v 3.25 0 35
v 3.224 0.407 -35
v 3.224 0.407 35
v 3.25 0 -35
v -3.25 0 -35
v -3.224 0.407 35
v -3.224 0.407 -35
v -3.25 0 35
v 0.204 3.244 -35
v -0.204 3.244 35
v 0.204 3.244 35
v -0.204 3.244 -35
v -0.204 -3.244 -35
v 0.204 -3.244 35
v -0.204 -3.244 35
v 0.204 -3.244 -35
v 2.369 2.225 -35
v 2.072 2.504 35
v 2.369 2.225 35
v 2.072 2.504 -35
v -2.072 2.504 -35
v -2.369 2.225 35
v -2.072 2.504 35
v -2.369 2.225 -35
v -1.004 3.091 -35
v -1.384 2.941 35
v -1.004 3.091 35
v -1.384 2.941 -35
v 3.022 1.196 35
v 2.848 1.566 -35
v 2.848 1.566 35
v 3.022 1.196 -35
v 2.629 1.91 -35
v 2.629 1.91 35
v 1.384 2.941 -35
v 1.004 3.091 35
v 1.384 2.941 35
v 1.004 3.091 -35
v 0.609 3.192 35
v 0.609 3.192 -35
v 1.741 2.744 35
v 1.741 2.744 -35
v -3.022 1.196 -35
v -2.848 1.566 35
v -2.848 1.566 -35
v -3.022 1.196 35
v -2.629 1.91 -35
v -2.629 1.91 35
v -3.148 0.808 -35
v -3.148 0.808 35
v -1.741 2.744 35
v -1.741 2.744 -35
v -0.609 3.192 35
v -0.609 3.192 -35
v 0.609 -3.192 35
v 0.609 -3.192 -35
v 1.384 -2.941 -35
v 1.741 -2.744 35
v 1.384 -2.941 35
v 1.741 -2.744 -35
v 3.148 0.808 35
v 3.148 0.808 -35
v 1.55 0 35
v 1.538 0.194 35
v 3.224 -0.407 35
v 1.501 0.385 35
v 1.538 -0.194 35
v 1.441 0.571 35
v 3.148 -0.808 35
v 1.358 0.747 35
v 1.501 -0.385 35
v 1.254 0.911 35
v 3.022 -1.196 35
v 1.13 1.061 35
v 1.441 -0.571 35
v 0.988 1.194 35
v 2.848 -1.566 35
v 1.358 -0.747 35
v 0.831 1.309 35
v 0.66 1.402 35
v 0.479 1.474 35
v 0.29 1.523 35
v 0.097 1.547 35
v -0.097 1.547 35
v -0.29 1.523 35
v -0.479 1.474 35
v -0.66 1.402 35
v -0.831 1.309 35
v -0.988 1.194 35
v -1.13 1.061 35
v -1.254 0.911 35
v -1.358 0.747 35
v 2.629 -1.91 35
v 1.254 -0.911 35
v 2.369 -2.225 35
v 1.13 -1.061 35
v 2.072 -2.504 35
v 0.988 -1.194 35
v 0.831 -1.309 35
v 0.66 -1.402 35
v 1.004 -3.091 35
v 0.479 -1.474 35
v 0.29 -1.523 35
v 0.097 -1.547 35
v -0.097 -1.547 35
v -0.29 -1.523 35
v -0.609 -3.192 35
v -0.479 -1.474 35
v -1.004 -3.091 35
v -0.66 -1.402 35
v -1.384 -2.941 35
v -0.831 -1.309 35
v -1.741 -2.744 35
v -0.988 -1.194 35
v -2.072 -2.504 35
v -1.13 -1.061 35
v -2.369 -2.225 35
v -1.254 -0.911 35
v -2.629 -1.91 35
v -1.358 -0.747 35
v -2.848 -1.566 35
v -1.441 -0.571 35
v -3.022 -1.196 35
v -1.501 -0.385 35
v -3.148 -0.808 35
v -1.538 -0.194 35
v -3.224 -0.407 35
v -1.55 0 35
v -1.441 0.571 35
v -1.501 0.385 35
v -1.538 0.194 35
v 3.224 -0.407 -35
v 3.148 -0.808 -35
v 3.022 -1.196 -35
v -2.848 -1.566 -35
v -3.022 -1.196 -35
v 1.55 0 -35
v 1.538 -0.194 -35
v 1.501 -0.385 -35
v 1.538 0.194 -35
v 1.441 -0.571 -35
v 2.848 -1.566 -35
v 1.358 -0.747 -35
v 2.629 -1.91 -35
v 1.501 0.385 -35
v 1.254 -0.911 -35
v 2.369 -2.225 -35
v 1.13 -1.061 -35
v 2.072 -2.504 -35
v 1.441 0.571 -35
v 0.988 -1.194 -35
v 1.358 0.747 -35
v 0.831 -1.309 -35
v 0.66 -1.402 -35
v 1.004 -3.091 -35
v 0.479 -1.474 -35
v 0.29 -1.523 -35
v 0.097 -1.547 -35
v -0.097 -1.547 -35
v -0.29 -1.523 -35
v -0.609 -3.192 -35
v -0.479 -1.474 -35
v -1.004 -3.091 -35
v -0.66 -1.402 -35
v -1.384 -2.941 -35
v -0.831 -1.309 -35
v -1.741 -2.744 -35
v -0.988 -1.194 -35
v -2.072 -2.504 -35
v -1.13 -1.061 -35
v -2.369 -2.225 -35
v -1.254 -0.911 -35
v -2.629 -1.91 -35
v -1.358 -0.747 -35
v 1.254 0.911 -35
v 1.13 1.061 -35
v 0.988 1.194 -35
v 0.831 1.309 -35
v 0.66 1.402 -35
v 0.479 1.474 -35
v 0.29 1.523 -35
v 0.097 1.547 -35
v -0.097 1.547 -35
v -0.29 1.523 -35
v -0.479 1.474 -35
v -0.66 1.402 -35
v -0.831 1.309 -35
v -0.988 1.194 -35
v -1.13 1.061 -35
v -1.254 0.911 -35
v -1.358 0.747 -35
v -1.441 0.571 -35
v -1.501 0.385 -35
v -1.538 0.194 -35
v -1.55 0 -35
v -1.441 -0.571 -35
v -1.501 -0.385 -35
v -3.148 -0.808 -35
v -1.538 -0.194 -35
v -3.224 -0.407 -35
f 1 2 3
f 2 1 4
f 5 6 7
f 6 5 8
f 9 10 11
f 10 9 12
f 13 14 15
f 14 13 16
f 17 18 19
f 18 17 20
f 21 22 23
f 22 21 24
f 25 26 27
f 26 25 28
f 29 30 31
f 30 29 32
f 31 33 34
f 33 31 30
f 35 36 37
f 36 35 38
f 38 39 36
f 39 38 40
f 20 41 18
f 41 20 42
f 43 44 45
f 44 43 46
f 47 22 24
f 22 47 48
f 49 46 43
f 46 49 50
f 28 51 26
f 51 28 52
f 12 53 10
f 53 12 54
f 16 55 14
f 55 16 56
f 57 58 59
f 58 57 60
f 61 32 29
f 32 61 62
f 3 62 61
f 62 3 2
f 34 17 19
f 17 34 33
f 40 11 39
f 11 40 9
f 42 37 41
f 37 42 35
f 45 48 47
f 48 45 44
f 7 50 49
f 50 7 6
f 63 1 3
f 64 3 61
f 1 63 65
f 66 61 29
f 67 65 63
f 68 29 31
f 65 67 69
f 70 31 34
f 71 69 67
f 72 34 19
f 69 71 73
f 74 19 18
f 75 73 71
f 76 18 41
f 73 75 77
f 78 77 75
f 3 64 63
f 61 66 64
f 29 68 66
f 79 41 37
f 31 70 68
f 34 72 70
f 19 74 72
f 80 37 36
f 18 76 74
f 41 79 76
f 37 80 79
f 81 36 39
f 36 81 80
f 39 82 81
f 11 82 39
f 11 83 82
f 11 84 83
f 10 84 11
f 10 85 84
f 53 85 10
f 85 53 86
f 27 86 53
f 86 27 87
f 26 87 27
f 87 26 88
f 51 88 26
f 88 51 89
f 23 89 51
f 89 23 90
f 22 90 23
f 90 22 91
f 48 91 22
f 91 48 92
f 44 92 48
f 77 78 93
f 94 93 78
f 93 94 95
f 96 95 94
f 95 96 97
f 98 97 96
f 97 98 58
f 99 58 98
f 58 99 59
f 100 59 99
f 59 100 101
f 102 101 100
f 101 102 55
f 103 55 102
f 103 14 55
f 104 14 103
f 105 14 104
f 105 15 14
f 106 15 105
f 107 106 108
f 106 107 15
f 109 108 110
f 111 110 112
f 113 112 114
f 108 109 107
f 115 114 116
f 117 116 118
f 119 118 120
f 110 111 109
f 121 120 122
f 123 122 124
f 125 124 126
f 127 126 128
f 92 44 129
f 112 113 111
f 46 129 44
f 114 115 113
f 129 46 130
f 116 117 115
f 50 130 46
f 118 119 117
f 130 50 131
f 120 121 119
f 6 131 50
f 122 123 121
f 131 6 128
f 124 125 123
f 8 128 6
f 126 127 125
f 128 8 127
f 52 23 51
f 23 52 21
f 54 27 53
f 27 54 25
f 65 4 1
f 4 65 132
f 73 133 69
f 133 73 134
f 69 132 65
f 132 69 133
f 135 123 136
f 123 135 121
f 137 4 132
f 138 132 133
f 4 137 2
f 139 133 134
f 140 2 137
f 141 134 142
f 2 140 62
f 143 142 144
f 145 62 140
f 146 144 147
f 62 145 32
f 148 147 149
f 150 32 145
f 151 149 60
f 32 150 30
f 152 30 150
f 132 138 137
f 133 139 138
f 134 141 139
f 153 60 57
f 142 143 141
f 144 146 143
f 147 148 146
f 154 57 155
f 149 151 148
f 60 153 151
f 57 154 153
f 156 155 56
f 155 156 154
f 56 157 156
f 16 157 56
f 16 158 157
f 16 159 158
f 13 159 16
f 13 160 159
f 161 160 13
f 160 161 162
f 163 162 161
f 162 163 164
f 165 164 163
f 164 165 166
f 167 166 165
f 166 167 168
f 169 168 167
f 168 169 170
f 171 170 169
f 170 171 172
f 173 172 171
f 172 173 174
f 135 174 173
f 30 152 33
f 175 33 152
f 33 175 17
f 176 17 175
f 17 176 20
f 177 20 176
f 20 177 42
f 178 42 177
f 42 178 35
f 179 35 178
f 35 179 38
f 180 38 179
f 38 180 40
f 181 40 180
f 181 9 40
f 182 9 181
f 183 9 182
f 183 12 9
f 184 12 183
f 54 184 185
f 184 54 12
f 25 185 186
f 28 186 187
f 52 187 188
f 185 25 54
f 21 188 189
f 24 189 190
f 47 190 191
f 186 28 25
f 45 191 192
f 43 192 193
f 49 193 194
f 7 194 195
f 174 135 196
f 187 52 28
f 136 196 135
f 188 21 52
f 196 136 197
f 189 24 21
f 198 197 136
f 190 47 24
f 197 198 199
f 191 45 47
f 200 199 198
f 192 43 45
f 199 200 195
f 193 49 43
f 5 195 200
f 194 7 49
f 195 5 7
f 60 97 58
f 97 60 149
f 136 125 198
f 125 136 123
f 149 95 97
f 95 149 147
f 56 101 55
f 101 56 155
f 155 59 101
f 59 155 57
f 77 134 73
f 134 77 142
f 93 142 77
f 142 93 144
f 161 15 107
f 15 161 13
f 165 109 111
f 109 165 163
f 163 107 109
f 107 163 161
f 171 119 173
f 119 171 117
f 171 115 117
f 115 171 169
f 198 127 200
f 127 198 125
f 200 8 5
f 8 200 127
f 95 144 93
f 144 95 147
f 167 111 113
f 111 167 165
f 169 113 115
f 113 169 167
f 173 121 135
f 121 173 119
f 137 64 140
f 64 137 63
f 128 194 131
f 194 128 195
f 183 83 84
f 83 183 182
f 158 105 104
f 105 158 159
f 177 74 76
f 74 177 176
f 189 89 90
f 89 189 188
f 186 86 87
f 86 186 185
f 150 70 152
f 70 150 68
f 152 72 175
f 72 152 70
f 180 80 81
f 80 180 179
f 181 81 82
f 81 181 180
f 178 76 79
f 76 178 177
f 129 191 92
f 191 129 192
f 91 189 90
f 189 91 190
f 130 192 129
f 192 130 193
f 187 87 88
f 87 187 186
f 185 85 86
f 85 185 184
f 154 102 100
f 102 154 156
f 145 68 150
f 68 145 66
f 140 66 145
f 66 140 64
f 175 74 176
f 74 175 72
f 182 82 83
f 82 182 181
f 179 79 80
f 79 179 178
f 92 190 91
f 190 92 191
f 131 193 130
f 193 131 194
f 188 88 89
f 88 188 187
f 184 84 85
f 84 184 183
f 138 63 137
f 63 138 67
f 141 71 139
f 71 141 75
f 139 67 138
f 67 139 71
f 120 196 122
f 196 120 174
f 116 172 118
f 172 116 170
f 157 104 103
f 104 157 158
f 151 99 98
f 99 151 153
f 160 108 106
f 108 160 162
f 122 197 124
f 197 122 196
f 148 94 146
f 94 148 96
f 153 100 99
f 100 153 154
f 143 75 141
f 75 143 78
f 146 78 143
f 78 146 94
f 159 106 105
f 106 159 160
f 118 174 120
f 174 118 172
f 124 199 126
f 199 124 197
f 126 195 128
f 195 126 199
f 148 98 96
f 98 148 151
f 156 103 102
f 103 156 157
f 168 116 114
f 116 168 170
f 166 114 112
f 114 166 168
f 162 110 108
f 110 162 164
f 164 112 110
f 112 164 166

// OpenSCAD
$fn = 50;


difference() {
	union() {
		translate(v = [0, 0, -35.0000000000]) {
			cylinder(h = 70, r = 3.2500000000);
		}
	}
	union() {
		translate(v = [0, 0, -100.0000000000]) {
			cylinder(h = 200, r = 1.5500000000);
		}
	}
}
